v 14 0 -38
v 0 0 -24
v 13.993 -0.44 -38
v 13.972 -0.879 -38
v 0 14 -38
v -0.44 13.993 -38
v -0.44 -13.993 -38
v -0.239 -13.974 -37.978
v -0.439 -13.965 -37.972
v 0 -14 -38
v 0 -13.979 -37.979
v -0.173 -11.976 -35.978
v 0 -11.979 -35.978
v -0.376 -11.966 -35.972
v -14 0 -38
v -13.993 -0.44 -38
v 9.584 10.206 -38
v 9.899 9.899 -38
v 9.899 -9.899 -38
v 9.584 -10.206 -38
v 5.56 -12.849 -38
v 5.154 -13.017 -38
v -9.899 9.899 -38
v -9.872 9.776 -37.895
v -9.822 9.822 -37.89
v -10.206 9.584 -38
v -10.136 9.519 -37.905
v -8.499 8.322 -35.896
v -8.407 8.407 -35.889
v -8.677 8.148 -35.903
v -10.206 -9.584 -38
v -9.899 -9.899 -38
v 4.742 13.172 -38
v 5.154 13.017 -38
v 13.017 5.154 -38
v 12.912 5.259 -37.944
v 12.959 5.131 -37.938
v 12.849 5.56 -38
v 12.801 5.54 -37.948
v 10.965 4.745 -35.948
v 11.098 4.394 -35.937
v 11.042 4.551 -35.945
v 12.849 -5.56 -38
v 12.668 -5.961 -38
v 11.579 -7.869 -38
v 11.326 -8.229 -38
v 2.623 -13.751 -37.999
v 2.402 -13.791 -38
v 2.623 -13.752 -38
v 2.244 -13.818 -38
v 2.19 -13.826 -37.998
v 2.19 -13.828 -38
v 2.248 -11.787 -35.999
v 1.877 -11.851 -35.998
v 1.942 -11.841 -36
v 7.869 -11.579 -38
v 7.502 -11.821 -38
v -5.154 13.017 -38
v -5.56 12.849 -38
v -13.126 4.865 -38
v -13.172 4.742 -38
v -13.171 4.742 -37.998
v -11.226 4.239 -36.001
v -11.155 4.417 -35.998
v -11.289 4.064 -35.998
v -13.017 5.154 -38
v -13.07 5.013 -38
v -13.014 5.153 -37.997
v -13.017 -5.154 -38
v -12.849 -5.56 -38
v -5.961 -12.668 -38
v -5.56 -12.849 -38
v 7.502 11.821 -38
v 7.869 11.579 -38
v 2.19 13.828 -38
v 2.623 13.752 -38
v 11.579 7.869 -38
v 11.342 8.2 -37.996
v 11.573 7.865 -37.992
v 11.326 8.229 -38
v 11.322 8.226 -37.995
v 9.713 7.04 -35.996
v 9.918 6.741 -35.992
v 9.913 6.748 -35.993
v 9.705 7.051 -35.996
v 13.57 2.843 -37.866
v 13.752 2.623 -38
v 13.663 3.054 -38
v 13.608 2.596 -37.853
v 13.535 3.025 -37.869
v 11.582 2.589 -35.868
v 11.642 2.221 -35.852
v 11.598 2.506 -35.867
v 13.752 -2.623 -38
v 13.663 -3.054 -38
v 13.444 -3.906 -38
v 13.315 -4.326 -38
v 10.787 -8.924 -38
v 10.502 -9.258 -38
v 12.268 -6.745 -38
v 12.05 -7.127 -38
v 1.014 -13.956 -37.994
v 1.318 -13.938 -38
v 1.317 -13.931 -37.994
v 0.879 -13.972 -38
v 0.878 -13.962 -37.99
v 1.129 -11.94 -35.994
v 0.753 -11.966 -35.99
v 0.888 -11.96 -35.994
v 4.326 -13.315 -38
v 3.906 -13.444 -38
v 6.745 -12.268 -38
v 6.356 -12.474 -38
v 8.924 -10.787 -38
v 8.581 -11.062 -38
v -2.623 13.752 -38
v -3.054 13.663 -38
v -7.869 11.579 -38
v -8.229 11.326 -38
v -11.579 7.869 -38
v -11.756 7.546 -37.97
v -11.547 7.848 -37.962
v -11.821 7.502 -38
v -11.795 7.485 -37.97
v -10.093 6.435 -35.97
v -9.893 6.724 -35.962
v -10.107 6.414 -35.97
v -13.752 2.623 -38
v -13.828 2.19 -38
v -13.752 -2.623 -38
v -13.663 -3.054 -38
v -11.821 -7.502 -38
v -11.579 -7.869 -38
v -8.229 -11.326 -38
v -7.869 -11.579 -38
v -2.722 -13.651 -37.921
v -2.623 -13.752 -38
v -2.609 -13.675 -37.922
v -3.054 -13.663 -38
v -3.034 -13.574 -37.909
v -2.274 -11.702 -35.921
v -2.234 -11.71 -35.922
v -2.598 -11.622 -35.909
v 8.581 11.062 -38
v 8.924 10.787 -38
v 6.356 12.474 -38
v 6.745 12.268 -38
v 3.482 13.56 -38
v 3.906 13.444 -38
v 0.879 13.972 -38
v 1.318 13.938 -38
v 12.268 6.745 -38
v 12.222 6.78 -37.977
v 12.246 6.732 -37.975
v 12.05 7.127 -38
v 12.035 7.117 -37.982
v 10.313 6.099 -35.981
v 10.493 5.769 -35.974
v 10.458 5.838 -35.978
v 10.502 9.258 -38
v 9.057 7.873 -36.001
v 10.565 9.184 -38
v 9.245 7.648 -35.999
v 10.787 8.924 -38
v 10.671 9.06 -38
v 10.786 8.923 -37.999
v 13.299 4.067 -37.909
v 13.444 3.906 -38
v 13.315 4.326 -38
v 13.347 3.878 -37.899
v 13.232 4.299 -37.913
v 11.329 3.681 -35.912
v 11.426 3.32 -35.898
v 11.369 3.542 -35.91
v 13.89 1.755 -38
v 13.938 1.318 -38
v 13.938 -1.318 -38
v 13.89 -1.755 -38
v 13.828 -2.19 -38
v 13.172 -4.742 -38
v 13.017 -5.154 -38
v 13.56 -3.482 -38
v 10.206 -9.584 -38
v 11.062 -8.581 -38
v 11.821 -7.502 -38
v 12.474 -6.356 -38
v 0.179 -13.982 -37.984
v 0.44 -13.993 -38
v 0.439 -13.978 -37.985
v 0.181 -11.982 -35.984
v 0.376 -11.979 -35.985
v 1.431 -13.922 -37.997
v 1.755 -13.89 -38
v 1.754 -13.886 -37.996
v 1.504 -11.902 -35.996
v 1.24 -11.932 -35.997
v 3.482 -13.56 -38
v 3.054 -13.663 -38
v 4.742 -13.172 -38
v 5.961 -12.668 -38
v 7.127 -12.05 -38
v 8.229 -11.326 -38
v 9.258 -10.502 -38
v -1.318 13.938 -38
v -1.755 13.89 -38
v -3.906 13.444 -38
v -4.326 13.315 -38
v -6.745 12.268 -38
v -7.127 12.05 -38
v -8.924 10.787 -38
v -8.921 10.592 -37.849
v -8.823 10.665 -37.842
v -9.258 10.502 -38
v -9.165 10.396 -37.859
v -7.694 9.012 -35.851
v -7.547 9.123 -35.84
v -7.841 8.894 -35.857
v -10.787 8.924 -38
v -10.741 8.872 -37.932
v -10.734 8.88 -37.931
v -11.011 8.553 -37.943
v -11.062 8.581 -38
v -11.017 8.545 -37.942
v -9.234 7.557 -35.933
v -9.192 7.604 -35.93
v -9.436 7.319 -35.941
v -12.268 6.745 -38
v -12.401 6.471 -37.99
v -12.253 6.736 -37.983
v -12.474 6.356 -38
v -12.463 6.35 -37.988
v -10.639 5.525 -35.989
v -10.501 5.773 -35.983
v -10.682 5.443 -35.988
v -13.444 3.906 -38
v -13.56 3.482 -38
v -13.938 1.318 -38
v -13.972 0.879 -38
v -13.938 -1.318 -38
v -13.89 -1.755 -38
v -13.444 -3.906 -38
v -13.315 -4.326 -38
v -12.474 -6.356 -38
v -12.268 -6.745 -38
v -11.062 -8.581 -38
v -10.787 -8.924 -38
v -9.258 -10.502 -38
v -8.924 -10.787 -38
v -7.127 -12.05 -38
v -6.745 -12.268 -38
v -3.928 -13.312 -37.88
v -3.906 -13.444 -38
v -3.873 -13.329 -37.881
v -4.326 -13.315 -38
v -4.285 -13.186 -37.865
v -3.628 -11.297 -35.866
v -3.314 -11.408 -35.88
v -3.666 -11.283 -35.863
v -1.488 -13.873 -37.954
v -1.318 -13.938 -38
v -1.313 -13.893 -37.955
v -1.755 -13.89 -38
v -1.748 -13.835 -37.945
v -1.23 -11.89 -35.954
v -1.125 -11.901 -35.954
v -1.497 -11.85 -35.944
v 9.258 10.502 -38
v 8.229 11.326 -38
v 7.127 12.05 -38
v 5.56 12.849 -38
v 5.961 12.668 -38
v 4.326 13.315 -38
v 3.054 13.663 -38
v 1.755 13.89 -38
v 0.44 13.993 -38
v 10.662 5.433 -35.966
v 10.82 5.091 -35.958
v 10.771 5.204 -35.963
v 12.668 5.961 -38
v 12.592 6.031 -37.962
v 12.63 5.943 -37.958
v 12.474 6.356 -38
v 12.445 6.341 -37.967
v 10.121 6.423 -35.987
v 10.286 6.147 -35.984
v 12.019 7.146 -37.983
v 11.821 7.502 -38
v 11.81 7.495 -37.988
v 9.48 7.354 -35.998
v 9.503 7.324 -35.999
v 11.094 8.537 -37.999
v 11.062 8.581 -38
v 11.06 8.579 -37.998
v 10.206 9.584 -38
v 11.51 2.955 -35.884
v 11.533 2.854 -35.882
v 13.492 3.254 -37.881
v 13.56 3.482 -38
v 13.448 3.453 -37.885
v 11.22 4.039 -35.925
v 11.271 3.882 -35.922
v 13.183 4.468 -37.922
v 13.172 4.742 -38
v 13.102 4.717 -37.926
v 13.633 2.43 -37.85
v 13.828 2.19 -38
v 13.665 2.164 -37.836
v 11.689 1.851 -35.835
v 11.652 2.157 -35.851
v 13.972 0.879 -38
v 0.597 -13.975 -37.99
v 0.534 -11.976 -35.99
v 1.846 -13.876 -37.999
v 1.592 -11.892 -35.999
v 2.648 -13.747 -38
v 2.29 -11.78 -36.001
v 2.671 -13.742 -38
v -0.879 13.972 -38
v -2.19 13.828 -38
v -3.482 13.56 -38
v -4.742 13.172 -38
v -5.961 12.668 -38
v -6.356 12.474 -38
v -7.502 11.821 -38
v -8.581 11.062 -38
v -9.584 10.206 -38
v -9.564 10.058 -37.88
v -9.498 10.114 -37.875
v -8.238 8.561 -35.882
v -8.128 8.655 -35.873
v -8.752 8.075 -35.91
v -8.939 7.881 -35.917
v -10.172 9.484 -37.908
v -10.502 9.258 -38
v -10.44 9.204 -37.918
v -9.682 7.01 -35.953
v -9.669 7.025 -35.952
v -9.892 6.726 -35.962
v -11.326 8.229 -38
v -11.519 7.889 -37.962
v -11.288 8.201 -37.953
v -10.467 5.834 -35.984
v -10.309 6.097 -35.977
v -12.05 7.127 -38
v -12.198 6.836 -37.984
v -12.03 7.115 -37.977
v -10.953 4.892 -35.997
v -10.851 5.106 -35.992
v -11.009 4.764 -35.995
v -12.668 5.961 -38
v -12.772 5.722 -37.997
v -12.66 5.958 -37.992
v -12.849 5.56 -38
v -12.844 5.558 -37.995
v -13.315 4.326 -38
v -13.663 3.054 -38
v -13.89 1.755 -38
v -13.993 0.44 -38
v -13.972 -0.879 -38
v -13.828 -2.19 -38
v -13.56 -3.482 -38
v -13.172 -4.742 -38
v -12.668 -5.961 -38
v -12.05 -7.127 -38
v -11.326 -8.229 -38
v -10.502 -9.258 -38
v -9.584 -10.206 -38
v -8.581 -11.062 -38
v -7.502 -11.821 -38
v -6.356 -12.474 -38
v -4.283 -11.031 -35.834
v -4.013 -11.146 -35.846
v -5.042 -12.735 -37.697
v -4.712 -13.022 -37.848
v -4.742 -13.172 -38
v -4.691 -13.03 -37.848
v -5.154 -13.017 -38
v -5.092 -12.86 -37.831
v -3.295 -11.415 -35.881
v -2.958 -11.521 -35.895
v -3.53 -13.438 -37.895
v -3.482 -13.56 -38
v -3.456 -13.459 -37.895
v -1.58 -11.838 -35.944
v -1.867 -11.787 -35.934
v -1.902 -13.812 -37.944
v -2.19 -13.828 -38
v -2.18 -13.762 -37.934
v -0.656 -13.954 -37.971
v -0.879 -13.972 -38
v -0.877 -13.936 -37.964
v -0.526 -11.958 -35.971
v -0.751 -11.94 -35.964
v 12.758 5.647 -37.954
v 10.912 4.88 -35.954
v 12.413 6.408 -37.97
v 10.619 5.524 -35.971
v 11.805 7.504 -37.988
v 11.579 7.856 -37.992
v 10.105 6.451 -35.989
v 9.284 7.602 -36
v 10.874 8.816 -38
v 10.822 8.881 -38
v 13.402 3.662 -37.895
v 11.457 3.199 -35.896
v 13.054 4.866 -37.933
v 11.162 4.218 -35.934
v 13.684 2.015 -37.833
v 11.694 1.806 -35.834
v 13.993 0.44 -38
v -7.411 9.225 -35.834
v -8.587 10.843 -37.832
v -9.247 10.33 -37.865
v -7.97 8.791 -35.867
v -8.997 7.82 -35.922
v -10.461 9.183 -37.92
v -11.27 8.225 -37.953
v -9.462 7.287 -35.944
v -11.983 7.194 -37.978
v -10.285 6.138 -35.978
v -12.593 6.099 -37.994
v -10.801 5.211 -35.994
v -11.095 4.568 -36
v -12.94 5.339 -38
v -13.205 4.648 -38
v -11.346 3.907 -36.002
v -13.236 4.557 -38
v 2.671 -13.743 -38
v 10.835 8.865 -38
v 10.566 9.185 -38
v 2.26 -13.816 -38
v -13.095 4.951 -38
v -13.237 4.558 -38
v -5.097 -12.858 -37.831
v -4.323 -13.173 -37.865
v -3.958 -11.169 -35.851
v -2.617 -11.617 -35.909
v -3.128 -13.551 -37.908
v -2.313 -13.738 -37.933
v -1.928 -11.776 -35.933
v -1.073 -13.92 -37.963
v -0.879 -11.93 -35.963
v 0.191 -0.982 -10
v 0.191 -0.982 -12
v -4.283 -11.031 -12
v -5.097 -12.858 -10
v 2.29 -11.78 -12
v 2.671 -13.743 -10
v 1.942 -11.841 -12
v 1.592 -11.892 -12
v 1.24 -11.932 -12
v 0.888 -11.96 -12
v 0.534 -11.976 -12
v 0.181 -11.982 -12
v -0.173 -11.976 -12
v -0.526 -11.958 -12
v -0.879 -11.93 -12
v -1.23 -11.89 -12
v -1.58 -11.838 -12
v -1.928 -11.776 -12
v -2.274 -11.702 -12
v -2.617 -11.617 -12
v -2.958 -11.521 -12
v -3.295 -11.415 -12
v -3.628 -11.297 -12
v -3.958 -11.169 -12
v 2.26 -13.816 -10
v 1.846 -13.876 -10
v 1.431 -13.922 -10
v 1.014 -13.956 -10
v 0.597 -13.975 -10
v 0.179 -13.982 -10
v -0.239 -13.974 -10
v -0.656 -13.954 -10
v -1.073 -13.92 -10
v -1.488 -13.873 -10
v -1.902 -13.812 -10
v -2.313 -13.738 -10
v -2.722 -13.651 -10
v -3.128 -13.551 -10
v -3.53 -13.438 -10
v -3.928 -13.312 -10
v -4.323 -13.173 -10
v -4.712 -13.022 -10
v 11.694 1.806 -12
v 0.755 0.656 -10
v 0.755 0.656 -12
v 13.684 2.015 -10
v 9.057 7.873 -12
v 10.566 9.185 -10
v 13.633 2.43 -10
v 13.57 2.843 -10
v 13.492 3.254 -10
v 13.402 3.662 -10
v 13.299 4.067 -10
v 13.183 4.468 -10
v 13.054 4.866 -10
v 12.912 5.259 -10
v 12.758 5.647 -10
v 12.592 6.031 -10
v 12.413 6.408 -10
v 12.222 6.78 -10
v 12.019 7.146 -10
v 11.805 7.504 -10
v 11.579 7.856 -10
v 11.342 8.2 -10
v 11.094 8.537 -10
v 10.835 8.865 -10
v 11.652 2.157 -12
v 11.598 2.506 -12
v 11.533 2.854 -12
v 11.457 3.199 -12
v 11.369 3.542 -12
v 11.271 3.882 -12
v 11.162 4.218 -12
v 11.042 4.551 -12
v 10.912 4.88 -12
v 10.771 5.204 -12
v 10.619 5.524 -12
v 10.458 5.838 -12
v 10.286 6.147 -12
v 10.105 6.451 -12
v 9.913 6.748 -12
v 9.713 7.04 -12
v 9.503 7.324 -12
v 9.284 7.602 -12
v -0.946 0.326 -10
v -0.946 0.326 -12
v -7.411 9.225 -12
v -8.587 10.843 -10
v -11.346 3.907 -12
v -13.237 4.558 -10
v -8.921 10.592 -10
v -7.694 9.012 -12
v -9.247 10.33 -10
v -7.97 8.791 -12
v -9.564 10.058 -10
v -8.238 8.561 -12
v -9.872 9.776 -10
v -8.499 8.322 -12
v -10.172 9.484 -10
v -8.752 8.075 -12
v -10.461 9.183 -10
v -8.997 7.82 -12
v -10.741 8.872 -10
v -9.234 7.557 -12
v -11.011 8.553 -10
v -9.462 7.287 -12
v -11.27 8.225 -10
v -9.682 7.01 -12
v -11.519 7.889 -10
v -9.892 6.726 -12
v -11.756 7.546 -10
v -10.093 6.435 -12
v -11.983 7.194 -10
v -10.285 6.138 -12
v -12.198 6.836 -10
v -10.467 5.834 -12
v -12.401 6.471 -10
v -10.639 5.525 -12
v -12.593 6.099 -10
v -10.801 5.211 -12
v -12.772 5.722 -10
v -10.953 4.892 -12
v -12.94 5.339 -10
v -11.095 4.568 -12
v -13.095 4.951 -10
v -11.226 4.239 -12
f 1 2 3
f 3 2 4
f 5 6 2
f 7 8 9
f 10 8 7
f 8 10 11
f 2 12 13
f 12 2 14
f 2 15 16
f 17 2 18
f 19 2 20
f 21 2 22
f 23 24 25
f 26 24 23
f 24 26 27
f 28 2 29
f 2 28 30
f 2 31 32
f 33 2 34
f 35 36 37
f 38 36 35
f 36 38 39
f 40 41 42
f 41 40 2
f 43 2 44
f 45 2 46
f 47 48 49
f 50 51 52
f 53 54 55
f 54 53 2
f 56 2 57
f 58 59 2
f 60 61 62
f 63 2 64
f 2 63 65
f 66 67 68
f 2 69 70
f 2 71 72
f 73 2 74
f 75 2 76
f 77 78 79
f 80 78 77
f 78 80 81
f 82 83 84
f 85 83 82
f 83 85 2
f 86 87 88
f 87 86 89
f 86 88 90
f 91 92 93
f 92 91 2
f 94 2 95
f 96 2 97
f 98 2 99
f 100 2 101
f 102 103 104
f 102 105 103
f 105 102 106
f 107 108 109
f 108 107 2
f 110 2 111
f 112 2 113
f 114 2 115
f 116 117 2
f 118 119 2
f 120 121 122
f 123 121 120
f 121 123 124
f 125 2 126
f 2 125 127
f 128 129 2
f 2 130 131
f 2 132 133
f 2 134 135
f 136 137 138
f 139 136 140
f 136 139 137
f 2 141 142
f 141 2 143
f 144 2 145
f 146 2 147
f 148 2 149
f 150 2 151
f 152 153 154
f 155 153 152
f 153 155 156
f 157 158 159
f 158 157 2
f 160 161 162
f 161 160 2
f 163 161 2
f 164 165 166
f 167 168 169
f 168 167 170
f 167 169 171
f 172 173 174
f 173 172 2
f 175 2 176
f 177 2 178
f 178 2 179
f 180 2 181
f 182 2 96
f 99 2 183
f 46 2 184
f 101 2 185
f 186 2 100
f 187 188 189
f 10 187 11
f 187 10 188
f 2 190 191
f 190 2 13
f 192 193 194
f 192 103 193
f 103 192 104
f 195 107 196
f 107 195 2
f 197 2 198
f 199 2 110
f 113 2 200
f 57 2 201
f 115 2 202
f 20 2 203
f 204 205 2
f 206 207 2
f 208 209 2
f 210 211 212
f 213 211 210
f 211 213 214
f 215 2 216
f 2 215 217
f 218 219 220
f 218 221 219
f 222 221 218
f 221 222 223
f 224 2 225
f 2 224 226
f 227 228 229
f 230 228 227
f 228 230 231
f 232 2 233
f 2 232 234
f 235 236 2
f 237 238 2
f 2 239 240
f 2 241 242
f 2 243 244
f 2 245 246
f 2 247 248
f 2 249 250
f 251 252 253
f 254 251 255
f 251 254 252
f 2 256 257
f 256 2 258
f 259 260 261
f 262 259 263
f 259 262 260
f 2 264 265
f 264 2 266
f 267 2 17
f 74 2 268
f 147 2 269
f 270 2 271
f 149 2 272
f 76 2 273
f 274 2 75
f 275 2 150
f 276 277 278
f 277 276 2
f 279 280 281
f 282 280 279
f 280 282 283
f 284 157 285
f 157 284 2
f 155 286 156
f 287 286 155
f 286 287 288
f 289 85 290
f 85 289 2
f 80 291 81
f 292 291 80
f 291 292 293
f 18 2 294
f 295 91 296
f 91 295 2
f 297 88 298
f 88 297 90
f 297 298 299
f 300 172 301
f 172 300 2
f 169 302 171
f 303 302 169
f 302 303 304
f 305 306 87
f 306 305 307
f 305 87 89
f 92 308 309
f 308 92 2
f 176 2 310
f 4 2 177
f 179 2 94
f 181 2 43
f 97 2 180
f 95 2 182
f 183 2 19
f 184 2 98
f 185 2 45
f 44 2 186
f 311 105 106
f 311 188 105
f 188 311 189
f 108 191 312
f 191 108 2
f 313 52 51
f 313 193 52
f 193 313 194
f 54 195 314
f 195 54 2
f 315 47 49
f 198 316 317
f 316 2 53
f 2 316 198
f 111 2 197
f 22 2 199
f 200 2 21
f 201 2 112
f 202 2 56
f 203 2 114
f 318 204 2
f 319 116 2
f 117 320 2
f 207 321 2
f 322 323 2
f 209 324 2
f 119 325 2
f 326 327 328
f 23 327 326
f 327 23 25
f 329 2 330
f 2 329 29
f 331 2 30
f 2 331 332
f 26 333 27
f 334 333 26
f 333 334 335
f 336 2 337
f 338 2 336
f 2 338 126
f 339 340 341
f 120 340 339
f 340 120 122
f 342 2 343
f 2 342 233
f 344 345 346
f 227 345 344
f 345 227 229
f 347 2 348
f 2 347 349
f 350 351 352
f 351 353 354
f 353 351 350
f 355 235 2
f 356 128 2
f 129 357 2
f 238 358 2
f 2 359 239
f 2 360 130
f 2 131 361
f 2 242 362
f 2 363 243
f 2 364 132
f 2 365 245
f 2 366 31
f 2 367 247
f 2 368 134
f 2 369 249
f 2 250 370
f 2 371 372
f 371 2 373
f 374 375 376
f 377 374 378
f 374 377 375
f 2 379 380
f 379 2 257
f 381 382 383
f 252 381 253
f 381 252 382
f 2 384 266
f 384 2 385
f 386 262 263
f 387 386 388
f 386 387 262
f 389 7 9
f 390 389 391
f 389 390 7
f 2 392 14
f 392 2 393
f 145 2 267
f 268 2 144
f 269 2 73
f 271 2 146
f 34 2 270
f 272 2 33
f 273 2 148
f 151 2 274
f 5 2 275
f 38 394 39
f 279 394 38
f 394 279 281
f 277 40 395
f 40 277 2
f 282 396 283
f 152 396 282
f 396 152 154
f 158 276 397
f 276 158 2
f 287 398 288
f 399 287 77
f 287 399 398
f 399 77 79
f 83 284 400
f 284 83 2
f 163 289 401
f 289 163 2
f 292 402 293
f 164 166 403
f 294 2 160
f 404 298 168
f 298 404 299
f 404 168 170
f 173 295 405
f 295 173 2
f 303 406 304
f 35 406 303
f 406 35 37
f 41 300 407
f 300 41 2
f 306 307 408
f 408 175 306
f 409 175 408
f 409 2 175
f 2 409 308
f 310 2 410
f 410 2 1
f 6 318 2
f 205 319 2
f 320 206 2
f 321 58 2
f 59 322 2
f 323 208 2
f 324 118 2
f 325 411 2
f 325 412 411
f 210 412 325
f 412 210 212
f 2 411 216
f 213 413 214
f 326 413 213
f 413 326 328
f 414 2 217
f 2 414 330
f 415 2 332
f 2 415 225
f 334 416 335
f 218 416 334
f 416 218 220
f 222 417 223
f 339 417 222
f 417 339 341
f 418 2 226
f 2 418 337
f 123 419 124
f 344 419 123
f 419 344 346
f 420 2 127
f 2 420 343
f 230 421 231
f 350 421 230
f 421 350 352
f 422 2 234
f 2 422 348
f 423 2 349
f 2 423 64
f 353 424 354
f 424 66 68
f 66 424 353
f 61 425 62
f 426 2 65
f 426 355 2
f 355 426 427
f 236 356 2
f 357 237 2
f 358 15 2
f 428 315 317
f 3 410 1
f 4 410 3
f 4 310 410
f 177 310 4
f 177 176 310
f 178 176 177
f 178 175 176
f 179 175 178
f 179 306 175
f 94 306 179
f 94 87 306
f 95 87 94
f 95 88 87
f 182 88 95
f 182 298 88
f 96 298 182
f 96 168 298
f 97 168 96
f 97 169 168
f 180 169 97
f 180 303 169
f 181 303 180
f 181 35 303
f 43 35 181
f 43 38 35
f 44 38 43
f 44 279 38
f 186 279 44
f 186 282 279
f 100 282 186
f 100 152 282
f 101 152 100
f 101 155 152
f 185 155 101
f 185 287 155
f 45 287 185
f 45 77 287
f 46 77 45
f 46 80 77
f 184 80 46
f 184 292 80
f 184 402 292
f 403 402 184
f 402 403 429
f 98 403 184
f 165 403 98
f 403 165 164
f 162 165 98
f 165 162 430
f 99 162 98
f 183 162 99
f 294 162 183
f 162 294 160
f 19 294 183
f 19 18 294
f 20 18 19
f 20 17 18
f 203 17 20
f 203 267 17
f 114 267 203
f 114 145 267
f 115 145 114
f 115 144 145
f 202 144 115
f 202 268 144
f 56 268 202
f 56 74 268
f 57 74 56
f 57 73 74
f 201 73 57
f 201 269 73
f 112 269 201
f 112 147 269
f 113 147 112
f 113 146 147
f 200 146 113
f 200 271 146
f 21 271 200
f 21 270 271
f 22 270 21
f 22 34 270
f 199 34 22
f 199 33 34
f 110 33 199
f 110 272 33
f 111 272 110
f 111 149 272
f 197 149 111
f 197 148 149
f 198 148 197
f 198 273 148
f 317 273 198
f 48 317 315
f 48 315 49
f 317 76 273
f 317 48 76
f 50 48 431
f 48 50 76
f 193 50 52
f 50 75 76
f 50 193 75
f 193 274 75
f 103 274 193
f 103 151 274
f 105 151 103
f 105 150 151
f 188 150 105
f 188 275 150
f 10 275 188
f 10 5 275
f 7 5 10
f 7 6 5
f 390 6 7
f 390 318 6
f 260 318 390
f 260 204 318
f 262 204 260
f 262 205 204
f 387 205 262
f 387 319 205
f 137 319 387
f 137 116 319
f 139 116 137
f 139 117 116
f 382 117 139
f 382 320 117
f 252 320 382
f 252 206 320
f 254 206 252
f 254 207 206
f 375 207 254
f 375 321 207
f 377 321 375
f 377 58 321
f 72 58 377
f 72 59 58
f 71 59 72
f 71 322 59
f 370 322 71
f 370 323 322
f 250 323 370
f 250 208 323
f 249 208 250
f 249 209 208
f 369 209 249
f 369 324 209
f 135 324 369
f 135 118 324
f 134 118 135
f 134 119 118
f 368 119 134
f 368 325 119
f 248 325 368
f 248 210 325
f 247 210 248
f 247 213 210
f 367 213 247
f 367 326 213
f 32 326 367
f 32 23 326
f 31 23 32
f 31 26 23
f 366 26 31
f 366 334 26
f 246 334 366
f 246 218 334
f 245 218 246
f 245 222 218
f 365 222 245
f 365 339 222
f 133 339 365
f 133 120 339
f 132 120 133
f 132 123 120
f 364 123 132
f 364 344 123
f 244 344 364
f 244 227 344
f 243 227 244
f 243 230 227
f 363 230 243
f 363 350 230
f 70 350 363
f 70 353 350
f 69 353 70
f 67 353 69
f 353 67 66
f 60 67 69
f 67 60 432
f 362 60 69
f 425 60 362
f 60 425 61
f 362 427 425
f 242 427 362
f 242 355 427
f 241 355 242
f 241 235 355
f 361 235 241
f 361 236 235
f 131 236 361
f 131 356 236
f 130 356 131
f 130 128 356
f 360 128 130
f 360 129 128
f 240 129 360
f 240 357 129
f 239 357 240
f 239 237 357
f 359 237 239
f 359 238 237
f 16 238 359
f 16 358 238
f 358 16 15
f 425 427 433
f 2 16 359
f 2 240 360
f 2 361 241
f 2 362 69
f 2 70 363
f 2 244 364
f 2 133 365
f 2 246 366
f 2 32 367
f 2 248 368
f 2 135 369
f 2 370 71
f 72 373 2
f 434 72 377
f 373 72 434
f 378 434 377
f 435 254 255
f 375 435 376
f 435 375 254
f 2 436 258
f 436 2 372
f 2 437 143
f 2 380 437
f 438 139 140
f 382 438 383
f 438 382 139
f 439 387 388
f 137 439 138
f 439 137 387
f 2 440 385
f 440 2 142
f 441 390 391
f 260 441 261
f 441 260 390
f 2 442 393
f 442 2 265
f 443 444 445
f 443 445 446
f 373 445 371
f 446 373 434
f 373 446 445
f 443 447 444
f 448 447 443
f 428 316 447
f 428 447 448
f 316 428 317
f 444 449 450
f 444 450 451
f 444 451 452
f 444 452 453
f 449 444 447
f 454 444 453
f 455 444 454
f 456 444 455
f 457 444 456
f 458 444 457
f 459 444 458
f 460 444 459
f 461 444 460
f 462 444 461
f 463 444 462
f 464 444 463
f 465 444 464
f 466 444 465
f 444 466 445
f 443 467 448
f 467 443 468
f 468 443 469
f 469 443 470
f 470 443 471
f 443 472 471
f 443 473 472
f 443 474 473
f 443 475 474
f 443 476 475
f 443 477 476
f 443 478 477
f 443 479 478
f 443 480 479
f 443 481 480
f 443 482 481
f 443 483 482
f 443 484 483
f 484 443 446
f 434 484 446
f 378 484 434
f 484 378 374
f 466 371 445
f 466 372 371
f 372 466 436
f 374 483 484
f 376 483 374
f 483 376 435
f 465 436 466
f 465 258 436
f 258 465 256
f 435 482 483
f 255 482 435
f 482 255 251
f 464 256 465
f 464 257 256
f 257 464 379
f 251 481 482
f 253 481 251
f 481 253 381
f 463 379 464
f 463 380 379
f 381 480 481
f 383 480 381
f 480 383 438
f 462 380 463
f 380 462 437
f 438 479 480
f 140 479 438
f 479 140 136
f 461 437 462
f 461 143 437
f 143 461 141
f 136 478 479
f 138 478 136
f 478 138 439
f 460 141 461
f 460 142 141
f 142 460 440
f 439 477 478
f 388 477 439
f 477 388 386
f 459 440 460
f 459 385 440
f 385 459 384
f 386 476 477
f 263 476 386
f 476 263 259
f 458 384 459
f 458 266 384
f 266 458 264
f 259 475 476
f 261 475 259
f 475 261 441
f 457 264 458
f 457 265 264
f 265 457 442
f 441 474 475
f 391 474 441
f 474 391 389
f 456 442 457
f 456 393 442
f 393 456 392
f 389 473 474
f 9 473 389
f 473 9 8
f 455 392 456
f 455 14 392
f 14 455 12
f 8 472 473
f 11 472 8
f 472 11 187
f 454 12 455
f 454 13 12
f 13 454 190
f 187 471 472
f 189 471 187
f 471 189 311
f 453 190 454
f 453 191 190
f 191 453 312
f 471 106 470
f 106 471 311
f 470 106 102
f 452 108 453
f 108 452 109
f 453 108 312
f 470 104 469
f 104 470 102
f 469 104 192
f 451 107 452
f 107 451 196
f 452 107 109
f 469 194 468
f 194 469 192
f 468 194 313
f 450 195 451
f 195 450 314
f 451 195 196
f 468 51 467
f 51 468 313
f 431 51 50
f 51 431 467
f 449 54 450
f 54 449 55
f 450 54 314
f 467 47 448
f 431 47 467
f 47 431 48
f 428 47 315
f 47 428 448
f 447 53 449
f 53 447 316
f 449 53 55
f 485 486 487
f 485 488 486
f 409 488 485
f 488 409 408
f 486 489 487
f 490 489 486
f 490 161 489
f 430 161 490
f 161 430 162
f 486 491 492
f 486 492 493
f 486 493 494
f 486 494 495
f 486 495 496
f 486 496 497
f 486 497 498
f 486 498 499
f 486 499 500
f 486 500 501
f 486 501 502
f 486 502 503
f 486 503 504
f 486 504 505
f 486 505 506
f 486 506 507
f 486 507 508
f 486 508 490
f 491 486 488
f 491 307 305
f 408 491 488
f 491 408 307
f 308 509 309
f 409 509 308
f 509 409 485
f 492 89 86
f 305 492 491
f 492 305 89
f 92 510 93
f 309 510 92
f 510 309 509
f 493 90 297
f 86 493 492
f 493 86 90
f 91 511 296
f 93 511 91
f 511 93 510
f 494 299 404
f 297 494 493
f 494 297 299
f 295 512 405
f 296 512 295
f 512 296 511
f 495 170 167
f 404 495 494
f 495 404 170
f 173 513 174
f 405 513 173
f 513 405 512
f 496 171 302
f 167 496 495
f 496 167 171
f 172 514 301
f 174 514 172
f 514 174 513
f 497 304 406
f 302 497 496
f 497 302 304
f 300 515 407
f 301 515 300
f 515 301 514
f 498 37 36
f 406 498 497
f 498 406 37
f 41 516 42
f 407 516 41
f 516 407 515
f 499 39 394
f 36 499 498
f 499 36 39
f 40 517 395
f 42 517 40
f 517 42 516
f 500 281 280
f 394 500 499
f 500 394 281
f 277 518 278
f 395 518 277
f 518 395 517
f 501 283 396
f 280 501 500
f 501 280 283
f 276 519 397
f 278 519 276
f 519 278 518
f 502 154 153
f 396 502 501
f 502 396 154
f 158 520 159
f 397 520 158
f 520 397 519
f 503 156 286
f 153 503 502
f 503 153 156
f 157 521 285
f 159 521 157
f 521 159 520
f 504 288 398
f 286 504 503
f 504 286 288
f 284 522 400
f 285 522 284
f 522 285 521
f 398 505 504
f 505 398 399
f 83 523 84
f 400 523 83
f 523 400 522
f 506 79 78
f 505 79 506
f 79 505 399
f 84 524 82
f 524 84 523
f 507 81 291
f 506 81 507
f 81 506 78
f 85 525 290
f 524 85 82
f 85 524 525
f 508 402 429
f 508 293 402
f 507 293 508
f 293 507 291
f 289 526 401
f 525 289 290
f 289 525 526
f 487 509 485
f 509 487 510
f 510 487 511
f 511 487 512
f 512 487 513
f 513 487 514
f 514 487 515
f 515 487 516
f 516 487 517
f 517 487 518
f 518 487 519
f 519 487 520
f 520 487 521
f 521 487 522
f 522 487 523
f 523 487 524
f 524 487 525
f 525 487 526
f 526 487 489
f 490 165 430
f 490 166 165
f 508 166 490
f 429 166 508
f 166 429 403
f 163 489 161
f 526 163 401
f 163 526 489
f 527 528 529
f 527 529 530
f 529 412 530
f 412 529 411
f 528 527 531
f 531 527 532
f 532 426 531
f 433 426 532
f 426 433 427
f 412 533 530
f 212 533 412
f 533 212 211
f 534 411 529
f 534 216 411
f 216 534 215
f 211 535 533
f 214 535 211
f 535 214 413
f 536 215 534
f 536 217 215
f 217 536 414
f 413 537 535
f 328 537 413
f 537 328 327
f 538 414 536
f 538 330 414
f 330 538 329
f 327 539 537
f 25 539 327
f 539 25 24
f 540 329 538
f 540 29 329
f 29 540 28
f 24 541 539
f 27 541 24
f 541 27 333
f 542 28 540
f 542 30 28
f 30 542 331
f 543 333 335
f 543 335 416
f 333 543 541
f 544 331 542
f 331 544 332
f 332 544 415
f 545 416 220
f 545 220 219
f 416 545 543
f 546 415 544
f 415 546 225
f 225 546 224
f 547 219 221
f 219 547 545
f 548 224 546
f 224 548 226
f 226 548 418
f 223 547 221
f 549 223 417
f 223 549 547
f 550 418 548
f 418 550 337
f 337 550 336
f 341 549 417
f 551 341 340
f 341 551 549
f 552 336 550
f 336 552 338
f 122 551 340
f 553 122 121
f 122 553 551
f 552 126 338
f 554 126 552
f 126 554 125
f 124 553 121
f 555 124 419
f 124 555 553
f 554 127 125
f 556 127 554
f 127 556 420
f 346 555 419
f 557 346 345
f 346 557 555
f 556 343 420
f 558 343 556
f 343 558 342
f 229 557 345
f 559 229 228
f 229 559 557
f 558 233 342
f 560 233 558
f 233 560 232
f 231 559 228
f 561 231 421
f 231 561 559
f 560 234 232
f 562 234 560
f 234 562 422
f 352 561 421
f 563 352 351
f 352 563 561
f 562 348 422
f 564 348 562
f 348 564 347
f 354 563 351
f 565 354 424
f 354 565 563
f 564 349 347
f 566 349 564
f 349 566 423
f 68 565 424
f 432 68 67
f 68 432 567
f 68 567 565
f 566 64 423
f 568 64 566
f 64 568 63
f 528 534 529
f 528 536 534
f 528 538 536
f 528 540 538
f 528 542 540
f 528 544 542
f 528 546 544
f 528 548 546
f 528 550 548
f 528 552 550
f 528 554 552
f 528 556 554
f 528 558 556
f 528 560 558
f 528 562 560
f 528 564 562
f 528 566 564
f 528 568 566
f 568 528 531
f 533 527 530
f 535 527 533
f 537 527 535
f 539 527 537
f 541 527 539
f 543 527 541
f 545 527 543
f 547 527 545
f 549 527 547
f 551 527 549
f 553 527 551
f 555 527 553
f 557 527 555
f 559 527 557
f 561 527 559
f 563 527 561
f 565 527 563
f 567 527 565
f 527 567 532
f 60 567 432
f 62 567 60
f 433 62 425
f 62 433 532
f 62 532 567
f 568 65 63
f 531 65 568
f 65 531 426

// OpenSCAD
// Generated by SolidPython 1.0.4 on 2020-12-11 15:02:32


translate(v = [0, 0, -24]) {
	union() {
		rotate_extrude($fn = 200, angle = 360) {
			polygon(points = [[0, -14], [0, 0], [-14.0000000000, -14]]);
		}
		rotate(a = [0, 0, 101]) {
			translate(v = [-1.0000000000, 0, 0]) {
				rotate(a = [0, 0, -35]) {
					rotate_extrude($fn = 200, angle = 35) {
						translate(v = [-13.0000000000, 0, 0]) {
							polygon(points = [[0, -14], [2, -14], [2, 12], [13.0000000000, 12], [13.0000000000, 14], [2, 14], [0, 14]]);
						}
					}
				}
			}
		}
		rotate(a = [0, 0, 120]) {
			rotate(a = [0, 0, 101]) {
				translate(v = [-1.0000000000, 0, 0]) {
					rotate(a = [0, 0, -35]) {
						rotate_extrude($fn = 200, angle = 35) {
							translate(v = [-13.0000000000, 0, 0]) {
								polygon(points = [[0, -14], [2, -14], [2, 12], [13.0000000000, 12], [13.0000000000, 14], [2, 14], [0, 14]]);
							}
						}
					}
				}
			}
		}
		rotate(a = [0, 0, 240]) {
			rotate(a = [0, 0, 101]) {
				translate(v = [-1.0000000000, 0, 0]) {
					rotate(a = [0, 0, -35]) {
						rotate_extrude($fn = 200, angle = 35) {
							translate(v = [-13.0000000000, 0, 0]) {
								polygon(points = [[0, -14], [2, -14], [2, 12], [13.0000000000, 12], [13.0000000000, 14], [2, 14], [0, 14]]);
							}
						}
					}
				}
			}
		}
	}
}
/***********************************************
*********      SolidPython code:      **********
************************************************
 
from solid import *
from solid.utils import *
#from ..Junction.Junction import create_junction
from Junction.Junction import create_junction
import os
import toml
from math import *
import random

# TODO: consider vortex emitter if energy requirements aren't too much. also consider vortex emitter with a
#       circular refracting plate for near atomization (is this even better or does it cause too much
#       pressure loss compared to direct emitting against a 'backboard', just offsets the same effect?)


def create_nozzle(junction, junction_params, nozzle_diameter, drop_down_depth,
                  angle_of_attack, insertion_distance, insertion_rotation, insertion_thickness):
    '''
    takes a fully constructed T junction object and 
    nozzle parameters to create a 2 part refracting emitter
    PARAMETERS:
        junction: fully constructed junction object
        nozzle_diameter: diamter of nozzle (relatively macro since refracting)
        drop_down_depth: the distance the refracting cone will span, 
                         is proportional to flex hinge plasticity.
        angle_of_attack: the angle of the cone which will set the cone's base circle radius.
        insertion_distance:
        insertion_rotation:
        insertion_thickness:
    RETURNS:
        nozzle: a fully constructed nozzle
        refracting_plate: a snap on refracting cone for atomizing the 
                          nozzle output with proportional pressure loss 
                          from the nozzle
    '''
    # localize junction_param dictionary items
    wall_thickness = junction_params.get('wall_thickness')
    length = junction_params.get('length')
    junction_diameter = junction_params.get('tube_diameter')

    # orient drop down depth to keep parameters intuitive
    drop_down_depth = -1*drop_down_depth

    # create the nozzle object
    # the nozzle will tap into the junction
    nozzle = cylinder(junction_diameter/2, wall_thickness,
                      center=True, segments=200)
    nozzle = nozzle - hole()(cylinder(nozzle_diameter/2,
                                      wall_thickness, center=True, segments=200))

    # center to z axis
    nozzle = down(wall_thickness/2)(nozzle)

    # join the nozzle object with the junction
    nozzle = down(length)(nozzle)
    nozzle = junction + nozzle

    # create the refracting cone
    cone_width = drop_down_depth*tan(radians(angle_of_attack))
    cone = polygon([
        [0, drop_down_depth],
        [0, 0],
        [cone_width, drop_down_depth]
    ])
    # NOTE: changing segments here may be interesting (pyramid vs cone)
    cone = rotate_extrude(segments=200)(cone)

    # create the snap-on triangular prism joints
    # TODO: goes up too high given length and tube_diameter+2*wall_thickness
    # TODO: test
    poly_joint = polygon([
        [0,                                         drop_down_depth],
        [insertion_thickness,                       drop_down_depth],
        [insertion_thickness,                       length - 2*insertion_thickness],
        [-1*cone_width/2+insertion_thickness+insertion_distance, length - 2*insertion_thickness],
        [-1*cone_width/2+insertion_thickness+insertion_distance, length - insertion_thickness],
        [insertion_thickness,                       length-insertion_thickness],
        [0,                                         length-insertion_thickness],
    ])

    # orient the thin side to the cone to create a
    # secondary refracting surface from the pillars
    poly_joint = left(-1*cone_width/2 + insertion_thickness +
                      insertion_distance)(poly_joint)

    # rotate the polygon to create the snap-ons
    joint = rotate_extrude(insertion_rotation, segments=200)(poly_joint)

    joint = rotate([0, 0, -1*insertion_rotation])(joint)

    # recenter because of weird rotate_extrude
    # joint = right(insertion_thickness/2)(joint)

    # offset by cone base distance (trig calc it) but leave
    # insertion_distance to create insert from nozzle
    # was junction_diameter -> cone_width
    joint = right(cone_width/2+insertion_thickness+insertion_distance)(joint)

    # set random to increase spray distribution wrt other
    # emitters and junction-tubing alignment
    joint = rotate([0, 0, random.randint(0, 120)])(joint)

    # assemble the refracting cone and joints
    refracting_plate = cone + joint
    # create 3 of them for some symmetric stability
    refracting_plate = refracting_plate + rotate([0, 0, 120])(joint)
    refracting_plate = refracting_plate + rotate([0, 0, 240])(joint)

    # move down to align with nozzle
    refracting_plate = down(length+junction_diameter)(refracting_plate)
    # subtract the snap-ons from the nozzle body to create the junction cavities
    nozzle = nozzle - refracting_plate

    # TODO: integrate into one part using tree supports in print, 
    #       increase insertion to rectangle instead of triangle
    return nozzle,  refracting_plate


# TODO: extract this to solid library locally, update Corallus-Caninus fork and push
def render_object(render_object, filename):
    '''
    creates a .stl and .scad solution for the given solidpython OpenSCAD object
    PARAMETERS:
        render_object: the OpenSCAD object
        filename: a string for the file to be saved
    '''
    scad_render_to_file(render_object, filename + ".scad")
    # render with OpenSCAD
    print("Openscad is now rendering the solution..")
    os.system("start ../OpenSCAD/openscad.exe -o " +
              filename + ".stl " + filename + ".scad")


if __name__ == '__main__':
    # peek into junctions configuration
    junction_config = toml.load("../Junction/configuration.toml")
    # load nozzle and refracting plate configuration
    config = toml.load("configuration.toml")

    # build the objects
    junction = create_junction(**junction_config)
    # dont double splat junction_config since we want the dict object
    nozzle, refracting_plate = create_nozzle(
        junction, junction_config, **config)

    # render the object solutions
    render_object(nozzle, "nozzle")
    render_object(refracting_plate, "refracting_plate")
 
 
************************************************/
